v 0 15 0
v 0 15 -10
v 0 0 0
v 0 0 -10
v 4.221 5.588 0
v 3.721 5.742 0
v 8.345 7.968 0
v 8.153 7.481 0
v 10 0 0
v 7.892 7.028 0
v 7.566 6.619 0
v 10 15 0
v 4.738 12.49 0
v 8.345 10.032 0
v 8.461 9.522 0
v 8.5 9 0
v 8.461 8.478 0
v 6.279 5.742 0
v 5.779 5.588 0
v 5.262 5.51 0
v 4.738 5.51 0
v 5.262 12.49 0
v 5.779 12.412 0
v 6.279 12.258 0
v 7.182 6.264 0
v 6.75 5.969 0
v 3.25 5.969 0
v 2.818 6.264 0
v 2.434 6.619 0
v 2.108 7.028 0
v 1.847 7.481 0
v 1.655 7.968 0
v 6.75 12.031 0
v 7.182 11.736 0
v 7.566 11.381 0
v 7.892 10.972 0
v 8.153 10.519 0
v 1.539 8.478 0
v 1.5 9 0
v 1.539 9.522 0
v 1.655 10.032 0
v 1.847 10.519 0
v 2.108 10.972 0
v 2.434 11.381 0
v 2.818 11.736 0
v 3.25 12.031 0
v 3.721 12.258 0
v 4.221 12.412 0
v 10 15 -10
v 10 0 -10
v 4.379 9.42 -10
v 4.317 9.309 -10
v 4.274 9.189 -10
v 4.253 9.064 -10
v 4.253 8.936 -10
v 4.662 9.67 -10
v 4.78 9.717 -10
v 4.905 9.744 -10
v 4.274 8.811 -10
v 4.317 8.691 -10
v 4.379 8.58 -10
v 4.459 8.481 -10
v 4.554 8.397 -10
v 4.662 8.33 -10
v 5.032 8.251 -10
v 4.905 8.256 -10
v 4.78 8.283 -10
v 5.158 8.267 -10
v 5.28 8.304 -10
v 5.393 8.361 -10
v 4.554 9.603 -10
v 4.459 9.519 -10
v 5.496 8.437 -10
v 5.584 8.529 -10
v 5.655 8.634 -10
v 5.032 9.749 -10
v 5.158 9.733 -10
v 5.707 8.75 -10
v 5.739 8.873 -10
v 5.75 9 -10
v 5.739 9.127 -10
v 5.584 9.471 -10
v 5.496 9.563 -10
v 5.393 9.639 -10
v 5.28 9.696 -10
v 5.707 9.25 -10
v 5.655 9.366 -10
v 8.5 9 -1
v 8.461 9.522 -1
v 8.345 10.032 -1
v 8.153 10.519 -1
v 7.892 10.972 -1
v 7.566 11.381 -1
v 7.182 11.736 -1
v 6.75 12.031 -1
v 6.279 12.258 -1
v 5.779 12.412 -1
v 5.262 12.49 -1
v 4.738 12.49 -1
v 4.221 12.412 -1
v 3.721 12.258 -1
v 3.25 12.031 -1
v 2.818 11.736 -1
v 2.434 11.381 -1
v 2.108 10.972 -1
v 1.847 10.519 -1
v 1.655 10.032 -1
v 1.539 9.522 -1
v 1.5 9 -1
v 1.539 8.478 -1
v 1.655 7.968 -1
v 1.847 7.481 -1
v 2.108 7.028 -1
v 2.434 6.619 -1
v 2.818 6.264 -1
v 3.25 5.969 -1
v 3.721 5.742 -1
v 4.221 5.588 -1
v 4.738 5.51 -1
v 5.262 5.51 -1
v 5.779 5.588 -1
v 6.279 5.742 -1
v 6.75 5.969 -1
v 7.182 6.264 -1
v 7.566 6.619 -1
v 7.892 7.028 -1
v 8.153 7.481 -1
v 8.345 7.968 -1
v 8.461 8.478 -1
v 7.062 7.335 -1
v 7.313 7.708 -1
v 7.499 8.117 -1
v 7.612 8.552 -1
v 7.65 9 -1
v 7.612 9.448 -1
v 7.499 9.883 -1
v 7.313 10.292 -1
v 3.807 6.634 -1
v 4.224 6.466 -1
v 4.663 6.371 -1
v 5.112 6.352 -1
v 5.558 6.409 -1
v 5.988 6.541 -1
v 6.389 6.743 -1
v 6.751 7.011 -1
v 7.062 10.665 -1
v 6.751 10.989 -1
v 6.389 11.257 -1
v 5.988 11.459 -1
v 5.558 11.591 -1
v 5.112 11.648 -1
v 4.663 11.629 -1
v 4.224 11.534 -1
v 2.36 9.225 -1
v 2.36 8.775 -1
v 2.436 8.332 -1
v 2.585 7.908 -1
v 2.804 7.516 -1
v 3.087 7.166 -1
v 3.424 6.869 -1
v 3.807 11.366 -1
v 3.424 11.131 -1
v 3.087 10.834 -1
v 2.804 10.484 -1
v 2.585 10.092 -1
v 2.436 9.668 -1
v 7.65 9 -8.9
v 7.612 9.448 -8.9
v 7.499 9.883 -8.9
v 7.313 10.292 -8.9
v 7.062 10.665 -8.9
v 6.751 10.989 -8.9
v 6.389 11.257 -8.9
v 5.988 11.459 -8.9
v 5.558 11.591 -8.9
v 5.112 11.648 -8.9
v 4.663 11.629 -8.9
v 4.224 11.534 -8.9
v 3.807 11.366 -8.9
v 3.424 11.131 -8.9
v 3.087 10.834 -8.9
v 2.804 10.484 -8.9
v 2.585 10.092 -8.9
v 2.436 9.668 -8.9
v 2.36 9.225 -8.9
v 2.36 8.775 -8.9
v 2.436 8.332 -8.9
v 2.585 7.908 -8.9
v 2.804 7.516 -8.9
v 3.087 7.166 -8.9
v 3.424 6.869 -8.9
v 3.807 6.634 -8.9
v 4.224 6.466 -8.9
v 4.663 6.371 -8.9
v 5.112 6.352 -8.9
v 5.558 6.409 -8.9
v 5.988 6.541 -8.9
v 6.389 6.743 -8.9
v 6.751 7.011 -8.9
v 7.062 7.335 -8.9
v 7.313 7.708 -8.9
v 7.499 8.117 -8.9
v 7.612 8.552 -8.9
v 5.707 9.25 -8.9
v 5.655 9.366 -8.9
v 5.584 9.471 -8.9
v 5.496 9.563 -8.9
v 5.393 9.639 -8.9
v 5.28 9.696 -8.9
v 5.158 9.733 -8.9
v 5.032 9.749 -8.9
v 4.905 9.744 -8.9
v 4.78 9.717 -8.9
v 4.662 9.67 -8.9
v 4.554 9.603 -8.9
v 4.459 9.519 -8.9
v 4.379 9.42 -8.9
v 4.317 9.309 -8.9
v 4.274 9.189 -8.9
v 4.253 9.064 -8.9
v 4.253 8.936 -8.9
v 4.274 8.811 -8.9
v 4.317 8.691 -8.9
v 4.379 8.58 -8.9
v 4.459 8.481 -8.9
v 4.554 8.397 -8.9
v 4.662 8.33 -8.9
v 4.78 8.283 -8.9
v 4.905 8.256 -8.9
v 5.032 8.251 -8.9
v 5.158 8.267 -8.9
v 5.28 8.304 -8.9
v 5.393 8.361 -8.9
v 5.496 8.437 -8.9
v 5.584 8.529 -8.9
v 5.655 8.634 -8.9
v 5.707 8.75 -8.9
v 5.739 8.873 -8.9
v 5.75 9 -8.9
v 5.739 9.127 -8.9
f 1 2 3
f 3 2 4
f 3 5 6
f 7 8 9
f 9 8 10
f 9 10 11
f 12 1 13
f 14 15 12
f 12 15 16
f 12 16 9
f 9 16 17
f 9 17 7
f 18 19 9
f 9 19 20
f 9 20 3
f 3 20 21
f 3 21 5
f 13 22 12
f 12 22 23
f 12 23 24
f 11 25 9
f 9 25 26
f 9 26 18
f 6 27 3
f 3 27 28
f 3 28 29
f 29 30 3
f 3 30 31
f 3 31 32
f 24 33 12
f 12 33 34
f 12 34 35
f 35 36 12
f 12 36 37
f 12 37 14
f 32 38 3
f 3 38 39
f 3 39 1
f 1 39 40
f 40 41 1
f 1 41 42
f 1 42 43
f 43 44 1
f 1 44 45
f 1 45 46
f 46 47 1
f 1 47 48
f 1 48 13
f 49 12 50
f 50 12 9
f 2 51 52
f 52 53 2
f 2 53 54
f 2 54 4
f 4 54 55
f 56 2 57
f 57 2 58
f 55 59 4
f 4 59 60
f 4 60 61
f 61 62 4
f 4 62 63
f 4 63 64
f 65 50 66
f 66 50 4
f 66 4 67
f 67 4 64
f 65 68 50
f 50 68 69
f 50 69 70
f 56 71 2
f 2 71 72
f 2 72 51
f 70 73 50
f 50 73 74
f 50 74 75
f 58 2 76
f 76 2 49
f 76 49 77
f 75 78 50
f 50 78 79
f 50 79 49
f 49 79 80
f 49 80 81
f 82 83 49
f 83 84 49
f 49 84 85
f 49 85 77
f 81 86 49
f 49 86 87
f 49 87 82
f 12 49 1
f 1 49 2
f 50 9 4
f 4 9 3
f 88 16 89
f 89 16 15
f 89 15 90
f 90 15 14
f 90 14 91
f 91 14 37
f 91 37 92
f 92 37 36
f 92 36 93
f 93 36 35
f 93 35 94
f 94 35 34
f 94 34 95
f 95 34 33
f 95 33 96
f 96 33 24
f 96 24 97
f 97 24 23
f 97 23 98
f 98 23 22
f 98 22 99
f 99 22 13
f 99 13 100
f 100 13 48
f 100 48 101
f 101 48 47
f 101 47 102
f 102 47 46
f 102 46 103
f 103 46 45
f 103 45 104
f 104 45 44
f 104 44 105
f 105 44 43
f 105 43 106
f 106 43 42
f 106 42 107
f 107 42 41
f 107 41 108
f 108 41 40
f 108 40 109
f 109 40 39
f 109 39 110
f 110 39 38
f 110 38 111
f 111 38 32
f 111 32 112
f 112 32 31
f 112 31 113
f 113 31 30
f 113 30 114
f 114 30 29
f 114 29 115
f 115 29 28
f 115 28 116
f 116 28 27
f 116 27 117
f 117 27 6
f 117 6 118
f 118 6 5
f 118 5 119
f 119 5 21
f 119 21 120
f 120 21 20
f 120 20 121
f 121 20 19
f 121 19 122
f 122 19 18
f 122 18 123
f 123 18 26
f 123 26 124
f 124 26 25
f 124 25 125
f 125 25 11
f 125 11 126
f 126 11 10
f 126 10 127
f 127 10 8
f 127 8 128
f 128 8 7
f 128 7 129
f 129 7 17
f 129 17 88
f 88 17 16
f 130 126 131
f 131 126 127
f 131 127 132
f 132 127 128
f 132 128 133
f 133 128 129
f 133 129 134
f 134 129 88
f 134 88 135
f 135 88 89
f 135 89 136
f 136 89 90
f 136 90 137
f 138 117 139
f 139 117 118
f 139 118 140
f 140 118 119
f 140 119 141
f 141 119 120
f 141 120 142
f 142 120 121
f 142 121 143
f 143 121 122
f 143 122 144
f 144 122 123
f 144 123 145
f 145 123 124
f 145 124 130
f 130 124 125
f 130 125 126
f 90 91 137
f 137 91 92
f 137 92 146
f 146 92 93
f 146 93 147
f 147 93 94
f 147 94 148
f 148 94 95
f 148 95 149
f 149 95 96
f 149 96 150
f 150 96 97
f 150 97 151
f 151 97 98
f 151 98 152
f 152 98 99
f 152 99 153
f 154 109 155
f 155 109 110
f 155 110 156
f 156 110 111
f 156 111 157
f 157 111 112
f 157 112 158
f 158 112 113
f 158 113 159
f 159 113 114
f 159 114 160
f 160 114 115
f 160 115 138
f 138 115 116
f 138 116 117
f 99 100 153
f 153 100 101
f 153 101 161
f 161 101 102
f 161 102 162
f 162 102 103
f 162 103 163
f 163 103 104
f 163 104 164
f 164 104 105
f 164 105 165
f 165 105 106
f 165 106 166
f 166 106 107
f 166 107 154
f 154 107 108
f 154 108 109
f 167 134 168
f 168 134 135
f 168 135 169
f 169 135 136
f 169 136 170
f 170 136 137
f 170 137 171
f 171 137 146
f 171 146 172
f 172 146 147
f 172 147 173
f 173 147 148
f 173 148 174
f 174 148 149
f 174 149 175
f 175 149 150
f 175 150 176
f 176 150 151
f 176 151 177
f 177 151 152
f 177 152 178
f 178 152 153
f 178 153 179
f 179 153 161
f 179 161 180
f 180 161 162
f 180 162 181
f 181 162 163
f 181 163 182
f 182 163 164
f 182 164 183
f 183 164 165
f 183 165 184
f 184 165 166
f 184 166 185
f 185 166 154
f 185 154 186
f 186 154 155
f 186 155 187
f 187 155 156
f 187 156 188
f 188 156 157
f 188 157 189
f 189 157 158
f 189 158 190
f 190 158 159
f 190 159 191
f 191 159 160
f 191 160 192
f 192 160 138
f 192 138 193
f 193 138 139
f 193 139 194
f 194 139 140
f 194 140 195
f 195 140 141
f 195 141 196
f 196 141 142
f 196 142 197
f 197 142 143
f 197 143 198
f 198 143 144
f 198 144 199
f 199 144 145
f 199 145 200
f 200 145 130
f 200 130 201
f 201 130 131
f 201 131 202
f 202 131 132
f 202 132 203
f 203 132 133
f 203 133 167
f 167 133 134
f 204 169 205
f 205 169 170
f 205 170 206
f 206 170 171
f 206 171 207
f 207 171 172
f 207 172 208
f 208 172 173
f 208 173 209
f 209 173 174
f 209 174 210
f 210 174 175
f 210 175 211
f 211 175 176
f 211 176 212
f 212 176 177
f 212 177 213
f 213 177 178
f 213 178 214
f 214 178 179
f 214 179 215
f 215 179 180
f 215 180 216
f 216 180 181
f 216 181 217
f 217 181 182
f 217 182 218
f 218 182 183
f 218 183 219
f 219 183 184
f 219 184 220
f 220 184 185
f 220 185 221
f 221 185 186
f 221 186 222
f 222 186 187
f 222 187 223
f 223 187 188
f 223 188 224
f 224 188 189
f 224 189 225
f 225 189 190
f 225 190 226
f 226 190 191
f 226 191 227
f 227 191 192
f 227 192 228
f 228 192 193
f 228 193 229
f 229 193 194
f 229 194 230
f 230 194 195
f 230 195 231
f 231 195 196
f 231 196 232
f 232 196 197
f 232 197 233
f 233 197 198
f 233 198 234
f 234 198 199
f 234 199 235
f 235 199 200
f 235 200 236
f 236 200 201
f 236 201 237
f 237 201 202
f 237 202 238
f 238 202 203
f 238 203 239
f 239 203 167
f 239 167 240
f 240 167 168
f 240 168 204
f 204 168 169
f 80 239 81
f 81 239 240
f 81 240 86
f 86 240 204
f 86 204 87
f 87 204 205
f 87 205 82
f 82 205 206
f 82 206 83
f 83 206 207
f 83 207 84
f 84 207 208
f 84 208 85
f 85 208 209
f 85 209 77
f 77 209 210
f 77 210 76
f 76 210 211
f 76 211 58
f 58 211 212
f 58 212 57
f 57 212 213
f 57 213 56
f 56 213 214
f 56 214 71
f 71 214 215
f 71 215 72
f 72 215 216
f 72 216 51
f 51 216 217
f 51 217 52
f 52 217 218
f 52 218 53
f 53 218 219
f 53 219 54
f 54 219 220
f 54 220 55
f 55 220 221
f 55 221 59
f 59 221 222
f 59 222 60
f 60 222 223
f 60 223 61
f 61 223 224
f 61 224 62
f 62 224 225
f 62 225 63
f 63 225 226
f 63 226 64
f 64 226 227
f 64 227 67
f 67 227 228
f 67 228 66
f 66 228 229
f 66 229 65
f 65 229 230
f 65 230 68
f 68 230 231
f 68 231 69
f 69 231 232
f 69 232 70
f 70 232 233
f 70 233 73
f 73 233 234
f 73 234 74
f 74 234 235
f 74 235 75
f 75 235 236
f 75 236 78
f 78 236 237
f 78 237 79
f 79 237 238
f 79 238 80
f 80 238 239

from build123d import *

# Parameters (mm, degrees)
SKETCH1_W           = 10
SKETCH1_H           = 10
BOSS_EXTRUDE1_DEPTH = 15
SKETCH2_R           = 3.5
CUT_EXTRUDE1_DEPTH  = 1
SKETCH3_R           = 2.65
CUT_EXTRUDE2_DEPTH  = 7.9
SKETCH4_R           = 0.75
CUT_EXTRUDE3_DEPTH  = 21.104974509


with BuildPart() as part:
    # Sketch1 → Boss-Extrude1 (new body)
    with BuildSketch(Plane(origin=(0, 0, 0), x_dir=(1, 0, 0), z_dir=(0, 1, 0))):
        with Locations((5, 5)):
            Rectangle(SKETCH1_W, SKETCH1_H)
    extrude(amount=BOSS_EXTRUDE1_DEPTH)

    # Sketch2 → Cut-Extrude1 (cut)
    with BuildSketch(Plane.XY):
        with Locations((5, 9)):
            Circle(SKETCH2_R)
    extrude(amount=-CUT_EXTRUDE1_DEPTH, mode=Mode.SUBTRACT)

    # Sketch3 → Cut-Extrude2 (cut)
    with BuildSketch(Plane.XY.offset(-1)):
        with Locations((5, 9)):
            Circle(SKETCH3_R)
    extrude(amount=-CUT_EXTRUDE2_DEPTH, mode=Mode.SUBTRACT)

    # Sketch4 → Cut-Extrude3 (cut, through all)
    with BuildSketch(Plane.XY.offset(-8.9)):
        with Locations((5, 9)):
            Circle(SKETCH4_R)
    extrude(amount=-CUT_EXTRUDE3_DEPTH, mode=Mode.SUBTRACT)


solid = part.part
